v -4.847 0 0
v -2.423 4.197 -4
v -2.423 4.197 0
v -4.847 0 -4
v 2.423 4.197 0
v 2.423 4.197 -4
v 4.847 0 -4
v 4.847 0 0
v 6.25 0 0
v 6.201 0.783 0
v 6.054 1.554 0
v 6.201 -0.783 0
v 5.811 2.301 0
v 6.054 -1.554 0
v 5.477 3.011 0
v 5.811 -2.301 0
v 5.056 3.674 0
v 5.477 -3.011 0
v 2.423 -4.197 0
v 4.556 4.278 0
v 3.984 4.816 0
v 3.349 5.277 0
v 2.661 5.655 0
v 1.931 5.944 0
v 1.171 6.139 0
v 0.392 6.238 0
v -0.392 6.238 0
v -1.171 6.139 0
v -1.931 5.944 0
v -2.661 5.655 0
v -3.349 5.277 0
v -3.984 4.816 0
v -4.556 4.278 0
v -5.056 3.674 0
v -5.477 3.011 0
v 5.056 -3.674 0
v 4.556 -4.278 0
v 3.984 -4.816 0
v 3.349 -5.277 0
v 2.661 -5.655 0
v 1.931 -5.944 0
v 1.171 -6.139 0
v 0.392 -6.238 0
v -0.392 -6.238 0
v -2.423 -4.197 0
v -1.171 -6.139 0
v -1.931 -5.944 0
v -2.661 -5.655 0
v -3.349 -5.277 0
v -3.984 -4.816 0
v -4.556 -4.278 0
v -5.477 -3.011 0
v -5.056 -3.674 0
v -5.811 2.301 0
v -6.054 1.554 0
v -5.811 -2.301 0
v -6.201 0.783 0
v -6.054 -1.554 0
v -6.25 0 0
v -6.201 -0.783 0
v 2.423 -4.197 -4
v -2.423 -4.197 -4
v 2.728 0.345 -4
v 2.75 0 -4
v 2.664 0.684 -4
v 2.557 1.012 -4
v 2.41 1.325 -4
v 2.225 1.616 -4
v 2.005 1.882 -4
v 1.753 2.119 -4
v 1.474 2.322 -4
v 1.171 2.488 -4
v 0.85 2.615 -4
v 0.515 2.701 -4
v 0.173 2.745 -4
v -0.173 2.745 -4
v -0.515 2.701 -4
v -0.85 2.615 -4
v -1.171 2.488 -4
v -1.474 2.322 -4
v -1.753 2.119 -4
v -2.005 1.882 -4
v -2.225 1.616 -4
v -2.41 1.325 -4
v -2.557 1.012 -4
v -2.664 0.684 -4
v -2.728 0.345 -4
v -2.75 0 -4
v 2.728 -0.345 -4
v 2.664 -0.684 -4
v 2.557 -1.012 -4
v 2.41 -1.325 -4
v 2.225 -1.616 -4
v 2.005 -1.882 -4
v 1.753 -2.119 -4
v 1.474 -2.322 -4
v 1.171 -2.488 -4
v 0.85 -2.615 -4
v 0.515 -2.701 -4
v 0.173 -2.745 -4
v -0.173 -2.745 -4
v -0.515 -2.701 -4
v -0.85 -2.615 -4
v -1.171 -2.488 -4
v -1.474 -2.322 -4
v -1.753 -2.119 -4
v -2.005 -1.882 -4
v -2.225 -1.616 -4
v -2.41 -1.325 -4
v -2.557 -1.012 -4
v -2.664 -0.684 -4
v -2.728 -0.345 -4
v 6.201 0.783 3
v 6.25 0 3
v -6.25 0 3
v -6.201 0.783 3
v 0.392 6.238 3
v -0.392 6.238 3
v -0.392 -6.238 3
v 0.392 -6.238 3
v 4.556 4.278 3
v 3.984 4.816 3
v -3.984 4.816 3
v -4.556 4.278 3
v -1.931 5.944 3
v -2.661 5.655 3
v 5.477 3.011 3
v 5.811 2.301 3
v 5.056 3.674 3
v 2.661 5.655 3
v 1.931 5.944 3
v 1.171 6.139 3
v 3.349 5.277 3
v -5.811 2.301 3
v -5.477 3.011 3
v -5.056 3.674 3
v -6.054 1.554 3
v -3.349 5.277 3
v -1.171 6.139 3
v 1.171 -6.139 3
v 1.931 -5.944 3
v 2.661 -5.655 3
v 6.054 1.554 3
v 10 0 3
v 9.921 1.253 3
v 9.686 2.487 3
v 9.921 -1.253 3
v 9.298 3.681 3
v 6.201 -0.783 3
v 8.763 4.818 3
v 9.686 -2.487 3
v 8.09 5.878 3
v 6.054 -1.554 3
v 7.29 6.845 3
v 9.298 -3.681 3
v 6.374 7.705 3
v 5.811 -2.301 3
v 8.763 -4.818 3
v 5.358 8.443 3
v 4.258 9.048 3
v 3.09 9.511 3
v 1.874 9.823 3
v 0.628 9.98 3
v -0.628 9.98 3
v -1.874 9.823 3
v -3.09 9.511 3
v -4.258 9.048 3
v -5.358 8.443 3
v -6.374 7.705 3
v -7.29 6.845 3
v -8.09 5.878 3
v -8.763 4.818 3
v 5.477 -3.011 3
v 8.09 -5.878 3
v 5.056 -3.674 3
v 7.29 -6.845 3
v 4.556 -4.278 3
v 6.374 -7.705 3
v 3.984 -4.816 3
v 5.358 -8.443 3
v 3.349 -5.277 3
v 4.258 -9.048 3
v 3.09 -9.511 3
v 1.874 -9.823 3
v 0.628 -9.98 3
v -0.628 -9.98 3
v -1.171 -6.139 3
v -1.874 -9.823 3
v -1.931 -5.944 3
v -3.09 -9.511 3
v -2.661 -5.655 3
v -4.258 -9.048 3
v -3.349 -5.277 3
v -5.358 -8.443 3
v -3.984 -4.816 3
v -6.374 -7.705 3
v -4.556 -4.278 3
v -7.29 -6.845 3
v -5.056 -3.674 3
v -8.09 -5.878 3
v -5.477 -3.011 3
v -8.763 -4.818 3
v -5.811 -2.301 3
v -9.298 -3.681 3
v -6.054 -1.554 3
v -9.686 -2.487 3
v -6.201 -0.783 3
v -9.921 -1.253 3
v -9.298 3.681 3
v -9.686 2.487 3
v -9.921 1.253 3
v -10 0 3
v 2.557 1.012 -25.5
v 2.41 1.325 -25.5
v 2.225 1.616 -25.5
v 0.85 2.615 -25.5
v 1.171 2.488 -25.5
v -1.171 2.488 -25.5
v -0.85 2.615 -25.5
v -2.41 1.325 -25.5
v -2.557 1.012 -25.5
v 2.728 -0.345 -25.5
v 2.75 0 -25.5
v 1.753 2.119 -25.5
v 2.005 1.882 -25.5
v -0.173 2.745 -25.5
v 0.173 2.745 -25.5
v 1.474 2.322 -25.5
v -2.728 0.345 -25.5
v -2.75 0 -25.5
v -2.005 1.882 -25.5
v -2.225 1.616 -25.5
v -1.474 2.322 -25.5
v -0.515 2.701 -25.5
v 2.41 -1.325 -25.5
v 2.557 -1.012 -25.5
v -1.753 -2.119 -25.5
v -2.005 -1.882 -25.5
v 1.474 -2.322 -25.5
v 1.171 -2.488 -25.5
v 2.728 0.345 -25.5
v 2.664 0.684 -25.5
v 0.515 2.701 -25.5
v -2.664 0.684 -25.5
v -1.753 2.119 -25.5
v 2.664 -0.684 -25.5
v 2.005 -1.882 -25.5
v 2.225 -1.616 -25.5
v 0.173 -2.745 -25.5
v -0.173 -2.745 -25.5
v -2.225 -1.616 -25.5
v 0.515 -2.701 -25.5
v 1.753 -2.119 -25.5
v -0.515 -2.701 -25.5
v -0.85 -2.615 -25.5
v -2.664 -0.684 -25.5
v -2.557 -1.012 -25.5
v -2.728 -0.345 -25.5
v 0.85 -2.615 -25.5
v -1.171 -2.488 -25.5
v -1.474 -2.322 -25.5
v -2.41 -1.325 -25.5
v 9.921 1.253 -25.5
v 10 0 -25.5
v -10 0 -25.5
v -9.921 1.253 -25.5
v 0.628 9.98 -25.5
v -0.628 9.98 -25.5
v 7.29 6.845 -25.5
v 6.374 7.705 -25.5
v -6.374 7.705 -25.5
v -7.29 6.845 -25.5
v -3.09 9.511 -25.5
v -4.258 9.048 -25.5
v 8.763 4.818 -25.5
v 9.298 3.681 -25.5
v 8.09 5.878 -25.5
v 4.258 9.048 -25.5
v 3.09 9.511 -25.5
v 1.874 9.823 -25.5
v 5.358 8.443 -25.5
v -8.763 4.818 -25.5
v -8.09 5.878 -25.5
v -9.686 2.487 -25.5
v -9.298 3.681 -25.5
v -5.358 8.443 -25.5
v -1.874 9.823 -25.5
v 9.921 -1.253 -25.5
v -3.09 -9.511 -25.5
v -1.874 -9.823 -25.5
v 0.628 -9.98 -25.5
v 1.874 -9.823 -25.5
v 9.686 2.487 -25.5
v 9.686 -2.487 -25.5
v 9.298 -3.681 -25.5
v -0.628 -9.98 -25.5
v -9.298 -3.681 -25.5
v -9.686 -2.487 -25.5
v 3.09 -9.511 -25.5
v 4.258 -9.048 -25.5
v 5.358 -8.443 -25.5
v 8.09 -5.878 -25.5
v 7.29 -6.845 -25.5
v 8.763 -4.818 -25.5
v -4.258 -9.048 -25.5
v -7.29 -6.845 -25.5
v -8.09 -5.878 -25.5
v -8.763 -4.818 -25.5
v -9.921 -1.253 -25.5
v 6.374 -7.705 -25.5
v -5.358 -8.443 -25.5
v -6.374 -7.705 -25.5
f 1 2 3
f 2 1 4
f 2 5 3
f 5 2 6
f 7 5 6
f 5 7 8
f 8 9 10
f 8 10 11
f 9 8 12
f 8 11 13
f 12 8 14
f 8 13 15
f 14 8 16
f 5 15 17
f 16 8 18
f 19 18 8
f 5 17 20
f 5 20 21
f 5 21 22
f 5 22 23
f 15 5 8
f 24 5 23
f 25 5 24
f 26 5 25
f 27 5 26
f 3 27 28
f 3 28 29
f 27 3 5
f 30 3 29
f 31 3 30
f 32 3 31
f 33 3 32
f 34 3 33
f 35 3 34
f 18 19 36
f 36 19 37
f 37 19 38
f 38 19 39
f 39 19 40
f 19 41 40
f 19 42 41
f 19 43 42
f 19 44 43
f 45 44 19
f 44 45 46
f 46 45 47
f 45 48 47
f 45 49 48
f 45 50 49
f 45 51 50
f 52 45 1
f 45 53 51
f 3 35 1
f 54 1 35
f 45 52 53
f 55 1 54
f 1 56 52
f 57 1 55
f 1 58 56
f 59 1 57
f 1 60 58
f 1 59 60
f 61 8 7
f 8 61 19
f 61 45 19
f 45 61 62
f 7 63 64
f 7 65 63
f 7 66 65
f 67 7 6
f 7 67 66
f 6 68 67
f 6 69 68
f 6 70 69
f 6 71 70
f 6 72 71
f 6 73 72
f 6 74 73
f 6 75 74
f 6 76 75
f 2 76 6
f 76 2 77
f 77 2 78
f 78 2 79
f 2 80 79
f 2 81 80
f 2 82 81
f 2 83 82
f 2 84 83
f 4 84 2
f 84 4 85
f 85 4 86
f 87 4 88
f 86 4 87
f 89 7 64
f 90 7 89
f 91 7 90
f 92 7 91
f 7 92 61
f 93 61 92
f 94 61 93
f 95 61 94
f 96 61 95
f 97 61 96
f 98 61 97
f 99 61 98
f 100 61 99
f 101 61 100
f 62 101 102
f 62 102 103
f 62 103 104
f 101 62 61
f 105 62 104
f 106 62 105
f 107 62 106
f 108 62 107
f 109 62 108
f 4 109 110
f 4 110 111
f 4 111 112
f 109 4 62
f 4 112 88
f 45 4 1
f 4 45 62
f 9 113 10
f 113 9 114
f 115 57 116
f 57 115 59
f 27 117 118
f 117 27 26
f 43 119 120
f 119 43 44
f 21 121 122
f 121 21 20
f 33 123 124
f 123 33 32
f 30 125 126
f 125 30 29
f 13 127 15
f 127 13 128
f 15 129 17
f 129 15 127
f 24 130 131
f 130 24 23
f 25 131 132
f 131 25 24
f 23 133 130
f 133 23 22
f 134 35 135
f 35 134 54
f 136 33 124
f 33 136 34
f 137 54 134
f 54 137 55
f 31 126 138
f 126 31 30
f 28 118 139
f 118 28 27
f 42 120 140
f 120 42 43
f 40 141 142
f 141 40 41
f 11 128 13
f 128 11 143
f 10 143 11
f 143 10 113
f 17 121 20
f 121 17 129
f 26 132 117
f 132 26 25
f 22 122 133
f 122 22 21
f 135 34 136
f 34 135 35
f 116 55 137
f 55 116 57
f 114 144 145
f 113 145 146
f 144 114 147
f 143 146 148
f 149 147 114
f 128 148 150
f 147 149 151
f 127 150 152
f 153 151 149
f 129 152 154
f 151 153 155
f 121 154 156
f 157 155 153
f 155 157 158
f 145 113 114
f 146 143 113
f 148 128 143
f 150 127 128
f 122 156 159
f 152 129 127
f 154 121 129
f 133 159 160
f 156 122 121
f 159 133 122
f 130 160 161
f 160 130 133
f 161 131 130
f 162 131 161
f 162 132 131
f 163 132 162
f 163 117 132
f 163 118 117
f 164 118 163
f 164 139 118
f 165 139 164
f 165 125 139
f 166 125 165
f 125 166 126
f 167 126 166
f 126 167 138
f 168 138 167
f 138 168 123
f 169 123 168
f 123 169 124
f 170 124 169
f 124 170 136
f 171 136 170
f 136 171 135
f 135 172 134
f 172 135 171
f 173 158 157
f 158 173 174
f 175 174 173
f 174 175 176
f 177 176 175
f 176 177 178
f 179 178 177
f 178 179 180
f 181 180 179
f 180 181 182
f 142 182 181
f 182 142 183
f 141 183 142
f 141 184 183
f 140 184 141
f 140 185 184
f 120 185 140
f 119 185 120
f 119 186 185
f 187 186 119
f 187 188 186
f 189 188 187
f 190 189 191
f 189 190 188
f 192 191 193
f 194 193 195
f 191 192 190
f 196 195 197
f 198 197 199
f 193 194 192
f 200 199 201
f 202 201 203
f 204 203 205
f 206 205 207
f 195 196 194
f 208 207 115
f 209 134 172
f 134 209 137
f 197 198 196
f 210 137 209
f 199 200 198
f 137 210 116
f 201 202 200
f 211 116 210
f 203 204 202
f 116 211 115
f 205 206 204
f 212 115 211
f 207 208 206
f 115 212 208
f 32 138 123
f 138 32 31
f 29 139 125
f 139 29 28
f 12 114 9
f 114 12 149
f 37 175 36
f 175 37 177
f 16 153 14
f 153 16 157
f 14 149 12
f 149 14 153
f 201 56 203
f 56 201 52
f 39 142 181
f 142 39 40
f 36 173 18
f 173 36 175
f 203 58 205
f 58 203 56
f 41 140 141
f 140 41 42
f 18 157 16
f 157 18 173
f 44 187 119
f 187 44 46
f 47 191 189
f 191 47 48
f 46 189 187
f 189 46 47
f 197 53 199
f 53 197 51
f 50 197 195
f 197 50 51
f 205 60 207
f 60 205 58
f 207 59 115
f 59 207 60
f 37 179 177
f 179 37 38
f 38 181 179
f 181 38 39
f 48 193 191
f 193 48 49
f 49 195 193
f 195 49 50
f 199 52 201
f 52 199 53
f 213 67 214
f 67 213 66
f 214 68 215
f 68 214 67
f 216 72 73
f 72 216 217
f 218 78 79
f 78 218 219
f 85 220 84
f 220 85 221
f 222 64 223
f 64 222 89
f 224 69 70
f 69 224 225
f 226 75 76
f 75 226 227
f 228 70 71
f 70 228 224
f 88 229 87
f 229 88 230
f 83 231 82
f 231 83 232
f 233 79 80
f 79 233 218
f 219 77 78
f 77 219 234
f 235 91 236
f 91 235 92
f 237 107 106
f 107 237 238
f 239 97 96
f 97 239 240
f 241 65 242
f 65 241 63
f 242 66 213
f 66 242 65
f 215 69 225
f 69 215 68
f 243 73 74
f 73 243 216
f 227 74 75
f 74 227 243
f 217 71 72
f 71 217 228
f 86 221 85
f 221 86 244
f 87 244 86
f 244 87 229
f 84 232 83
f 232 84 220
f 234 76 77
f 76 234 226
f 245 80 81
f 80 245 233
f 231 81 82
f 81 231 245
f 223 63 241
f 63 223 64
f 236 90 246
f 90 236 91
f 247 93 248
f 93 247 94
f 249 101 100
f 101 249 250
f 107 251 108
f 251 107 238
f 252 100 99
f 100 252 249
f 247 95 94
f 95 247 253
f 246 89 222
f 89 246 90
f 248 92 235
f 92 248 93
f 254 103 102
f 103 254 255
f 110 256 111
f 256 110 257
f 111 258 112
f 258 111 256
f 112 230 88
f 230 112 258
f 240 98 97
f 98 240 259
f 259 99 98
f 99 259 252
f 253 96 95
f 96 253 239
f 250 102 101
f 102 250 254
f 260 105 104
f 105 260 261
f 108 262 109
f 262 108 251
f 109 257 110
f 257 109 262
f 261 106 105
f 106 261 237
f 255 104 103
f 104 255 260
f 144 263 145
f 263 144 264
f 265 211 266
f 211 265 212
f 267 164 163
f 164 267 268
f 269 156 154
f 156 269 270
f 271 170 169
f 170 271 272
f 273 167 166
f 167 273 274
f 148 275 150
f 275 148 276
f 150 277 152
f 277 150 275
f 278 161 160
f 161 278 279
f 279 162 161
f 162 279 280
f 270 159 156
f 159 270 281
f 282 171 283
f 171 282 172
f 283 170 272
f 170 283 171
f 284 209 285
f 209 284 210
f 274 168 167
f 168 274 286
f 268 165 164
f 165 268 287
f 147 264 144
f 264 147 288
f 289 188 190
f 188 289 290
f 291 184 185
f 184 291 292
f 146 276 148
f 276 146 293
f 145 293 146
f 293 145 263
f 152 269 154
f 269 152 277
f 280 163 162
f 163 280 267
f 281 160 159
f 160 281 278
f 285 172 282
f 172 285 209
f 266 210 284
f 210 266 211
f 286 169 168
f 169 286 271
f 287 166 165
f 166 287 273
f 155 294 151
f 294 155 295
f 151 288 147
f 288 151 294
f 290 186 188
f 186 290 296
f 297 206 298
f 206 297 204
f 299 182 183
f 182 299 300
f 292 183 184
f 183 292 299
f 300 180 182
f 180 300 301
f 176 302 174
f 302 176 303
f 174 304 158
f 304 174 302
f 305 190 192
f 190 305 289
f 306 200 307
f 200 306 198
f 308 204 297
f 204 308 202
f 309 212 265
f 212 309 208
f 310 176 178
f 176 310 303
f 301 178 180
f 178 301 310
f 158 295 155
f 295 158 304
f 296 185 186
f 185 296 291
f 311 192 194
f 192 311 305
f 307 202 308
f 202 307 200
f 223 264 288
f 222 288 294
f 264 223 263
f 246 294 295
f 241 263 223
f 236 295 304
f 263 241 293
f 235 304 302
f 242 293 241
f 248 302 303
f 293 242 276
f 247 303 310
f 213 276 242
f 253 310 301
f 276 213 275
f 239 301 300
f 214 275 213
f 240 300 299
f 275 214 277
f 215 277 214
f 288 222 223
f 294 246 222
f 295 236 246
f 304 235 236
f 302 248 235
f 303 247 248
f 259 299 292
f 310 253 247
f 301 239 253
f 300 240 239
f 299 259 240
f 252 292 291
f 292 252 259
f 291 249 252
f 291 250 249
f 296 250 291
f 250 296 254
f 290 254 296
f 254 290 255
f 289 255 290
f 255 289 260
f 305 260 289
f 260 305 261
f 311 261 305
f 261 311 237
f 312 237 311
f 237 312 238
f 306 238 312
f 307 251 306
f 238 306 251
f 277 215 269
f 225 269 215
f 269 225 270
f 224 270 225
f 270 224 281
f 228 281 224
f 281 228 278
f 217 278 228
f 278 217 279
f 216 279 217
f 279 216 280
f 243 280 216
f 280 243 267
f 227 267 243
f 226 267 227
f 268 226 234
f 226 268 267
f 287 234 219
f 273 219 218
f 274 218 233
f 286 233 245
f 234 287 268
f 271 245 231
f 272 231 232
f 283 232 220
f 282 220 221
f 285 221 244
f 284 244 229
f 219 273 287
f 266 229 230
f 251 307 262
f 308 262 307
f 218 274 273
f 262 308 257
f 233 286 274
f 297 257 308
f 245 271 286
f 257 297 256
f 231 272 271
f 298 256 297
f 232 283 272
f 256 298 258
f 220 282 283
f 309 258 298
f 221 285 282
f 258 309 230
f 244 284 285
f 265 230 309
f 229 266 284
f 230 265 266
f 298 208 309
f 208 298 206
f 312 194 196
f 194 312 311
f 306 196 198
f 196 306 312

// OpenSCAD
$fn = 50;


difference() {
	union() {
		translate(v = [0, 0, -25.5000000000]) {
			cylinder(h = 28.5000000000, r = 10.0000000000);
		}
	}
	union() {
		translate(v = [0, 0, 0]) {
			rotate(a = [0, 0, 0]) {
				difference() {
					union() {
						translate(v = [0, 0, -4]) {
							linear_extrude(height = 4) {
								polygon(points = [[4.8468000000, 0.0000000000], [2.4234000000, 4.1974519271], [-2.4234000000, 4.1974519271], [-4.8468000000, 0.0000000000], [-2.4234000000, -4.1974519271], [2.4234000000, -4.1974519271]]);
							}
						}
					}
					union();
				}
			}
		}
		#cylinder(h = 3, r = 6.2500000000);
		#translate(v = [0, 0, -100.0000000000]) {
			cylinder(h = 200, r = 2.7500000000);
		}
	}
}
